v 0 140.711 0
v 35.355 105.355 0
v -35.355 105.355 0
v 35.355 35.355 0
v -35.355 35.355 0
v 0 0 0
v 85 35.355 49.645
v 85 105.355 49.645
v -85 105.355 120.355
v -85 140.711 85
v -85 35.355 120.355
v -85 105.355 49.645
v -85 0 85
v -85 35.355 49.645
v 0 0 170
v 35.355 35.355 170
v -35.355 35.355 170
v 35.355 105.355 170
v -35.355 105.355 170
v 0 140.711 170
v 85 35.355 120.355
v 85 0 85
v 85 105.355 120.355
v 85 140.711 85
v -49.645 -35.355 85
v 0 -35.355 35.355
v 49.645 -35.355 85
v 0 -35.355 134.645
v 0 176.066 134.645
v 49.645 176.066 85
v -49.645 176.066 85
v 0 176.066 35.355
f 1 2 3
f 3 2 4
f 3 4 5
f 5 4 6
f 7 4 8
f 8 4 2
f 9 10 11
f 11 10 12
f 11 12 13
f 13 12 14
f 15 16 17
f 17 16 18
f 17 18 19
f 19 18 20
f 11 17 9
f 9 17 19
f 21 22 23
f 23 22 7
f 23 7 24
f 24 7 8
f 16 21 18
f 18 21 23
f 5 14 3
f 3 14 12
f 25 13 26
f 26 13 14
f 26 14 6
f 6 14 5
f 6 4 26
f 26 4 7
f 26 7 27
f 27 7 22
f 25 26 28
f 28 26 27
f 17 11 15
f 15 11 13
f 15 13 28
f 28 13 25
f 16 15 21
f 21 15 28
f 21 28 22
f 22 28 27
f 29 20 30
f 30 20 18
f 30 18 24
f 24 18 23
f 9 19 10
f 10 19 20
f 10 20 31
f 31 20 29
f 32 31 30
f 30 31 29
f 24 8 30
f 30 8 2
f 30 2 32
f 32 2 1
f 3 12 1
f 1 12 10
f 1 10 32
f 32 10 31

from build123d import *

# Parameters (mm, degrees)
BOSS_EXTRUDE1_DEPTH  = 170
SKETCH2_W            = 70.7106781
SKETCH2_H            = 70
BOSS_EXTRUDE2_DEPTH  = 85
SKETCH3_W            = 70.208152808
SKETCH3_H            = 70
BOSS_EXTRUDE3_DEPTH  = 170.208153
BOSS_EXTRUDE7_DEPTH  = 140.710678
SKETCH5_W            = 70.208152808
SKETCH5_H            = 70
BOSS_EXTRUDE8_DEPTH  = 170.208153
BOSS_EXTRUDE9_DEPTH  = 40
BOSS_EXTRUDE10_DEPTH = 40
BOSS_EXTRUDE11_DEPTH = 40
BOSS_EXTRUDE14_DEPTH = 40
BOSS_EXTRUDE15_DEPTH = 40
BOSS_EXTRUDE17_DEPTH = 40
BOSS_EXTRUDE20_DEPTH = 40
BOSS_EXTRUDE21_DEPTH = 40
BOSS_EXTRUDE22_DEPTH = 40
BOSS_EXTRUDE24_DEPTH = 40


with BuildPart() as part:
    # Sketch1 → Boss-Extrude1 (new body)
    with BuildSketch(Plane.XY):
        Polygon((0, 0), (-35.355339059, 35.355339059), (-35.355339059, 105.355339059), (0, 140.710678119), (35.355339059, 105.355339059), (35.355339059, 35.355339059), align=None)
    extrude(amount=BOSS_EXTRUDE1_DEPTH)



with BuildPart() as body_2:
    # Sketch2 → Boss-Extrude2 (new, symmetric)
    with BuildSketch(Plane(origin=(0, 0, 0), x_dir=(0, 0, -1), z_dir=(1, 0, 0))):
        with Locations((-85, 70.355339059)):
            Rectangle(SKETCH2_W, SKETCH2_H)
        Polygon((-85, 140.710678109), (-120.35533905, 105.355339059), (-49.64466095, 105.355339059), align=None)
        Polygon((-49.64466095, 35.355339059), (-120.35533905, 35.355339059), (-85, 9e-09), align=None)
    extrude(amount=BOSS_EXTRUDE2_DEPTH, both=True)


with BuildPart() as part_1:
    add(part.part)

    add(body_2.part)  # Boss-Extrude3 merges body 2
    # Sketch3 → Boss-Extrude3 (add)
    with BuildSketch(Plane(origin=(17.677669533, 0, -17.67766953), x_dir=(-0.7071067811201199, 0, -0.7071067812529752), z_dir=(0.7071067812529752, 0, -0.7071067811201199))):
        with Locations((-60.104076402, 70.355339059)):
            Rectangle(SKETCH3_W, SKETCH3_H)
    extrude(amount=-BOSS_EXTRUDE3_DEPTH)

    # Sketch4 → Boss-Extrude7 (add)
    with BuildSketch(Plane(origin=(0, 140.710678119, 0), x_dir=(1, 0, 0), z_dir=(0, 1, 0))):
        Polygon((0, -35.355339059), (-49.64466095, -85.000000019), (0, -134.644660959), (49.64466095, -85), align=None)
    extrude(amount=-BOSS_EXTRUDE7_DEPTH)

    # Sketch5 → Boss-Extrude8 (add)
    with BuildSketch(Plane(origin=(-17.677669533, 0, -17.67766953), x_dir=(-0.7071067811201204, 0, 0.7071067812529747), z_dir=(-0.7071067812529747, 0, -0.7071067811201204))):
        with Locations((60.104076402, 70.355339059)):
            Rectangle(SKETCH5_W, SKETCH5_H)
    extrude(amount=-BOSS_EXTRUDE8_DEPTH)

    # Sketch7 → Boss-Extrude9 (add)
    with BuildSketch(Plane(origin=(0, 0, 0), x_dir=(0.8164965809277276, -0.4082482904638617, -0.4082482904638614), z_dir=(0.5773502691896236, 0.577350269189627, 0.5773502691896267))):
        Polygon((-104.103314072, -10.104076407), (-104.103314072, -60.104076394), (-60.802043892, -85.104076383), (-9e-09, -49.999999976), (0, 0), (-43.301270189, 25), align=None)
    extrude(amount=BOSS_EXTRUDE9_DEPTH)

    # Sketch8 → Boss-Extrude10 (add)
    with BuildSketch(Plane(origin=(0, 0, 0), x_dir=(-0.8164965809277275, -0.4082482904638613, -0.4082482904638619), z_dir=(0.5773502691896238, -0.5773502691896264, -0.5773502691896273))):
        Polygon((0, 0), (-104.103314072, -60.104076394), (-104.103314072, -10.104076407), (-43.301270189, 25), align=None)
        Polygon((0, 0), (5e-09, -50), (-60.802043877, -85.104076407), (-104.103314072, -60.104076394), align=None)
    extrude(amount=-BOSS_EXTRUDE10_DEPTH)

    # Sketch9 → Boss-Extrude11 (add)
    with BuildSketch(Plane(origin=(-8e-09, -35.355339028, -1e-08), x_dir=(-1.0, 2.324833960682746e-10, 0), z_dir=(-2.324833960682746e-10, -1.0, -2.9511459186104094e-10))):
        Polygon((-49.644660948, -85.000000014), (-1e-09, -35.355339056), (49.644660943, -85.000000003), (-1.9e-08, -134.644660946), align=None)
    extrude(amount=-BOSS_EXTRUDE11_DEPTH)

    # Sketch11 → Boss-Extrude14 (add)
    with BuildSketch(Plane(origin=(-56.666666664, -56.666666664, 56.666666669), x_dir=(0.8164965809396947, -0.408248290433944, 0.4082482904698449), z_dir=(-0.5773502691726996, -0.577350269172703, 0.5773502692234747))):
        Polygon((-34.701104701, 110.104076387), (-34.701104696, 60.1040764), (69.40220938, 120.208152796), (26.100939191, 145.208152798), align=None)
        Polygon((69.402209374, 70.208152796), (8.600165476, 35.104076398), (-34.701104696, 60.1040764), (69.40220938, 120.208152796), align=None)
    extrude(amount=-BOSS_EXTRUDE14_DEPTH)

    # Sketch12 → Boss-Extrude15 (add)
    with BuildSketch(Plane(origin=(56.666666687, -56.666666659, 56.666666659), x_dir=(0.40824829049722544, -0.40824829029705206, -0.8164965809944503), z_dir=(0.5773502693783509, -0.5773502690952631, 0.5773502690952634))):
        Polygon((-78.00237487, 85.104076392), (-138.804418754, 50.000000005), (-138.804418765, 6e-09), (-95.503148581, -25.000000002), (-34.701104701, 10.104076381), (-34.701104696, 60.104076393), align=None)
    extrude(amount=-BOSS_EXTRUDE15_DEPTH)

    # Sketch14 → Boss-Extrude17 (add)
    with BuildSketch(Plane(origin=(103.57022604, 103.57022604, 103.57022604), x_dir=(-0.8164965809277273, 0.4082482904638616, 0.4082482904638622), z_dir=(-0.5773502691896242, -0.5773502691896262, -0.5773502691896271))):
        Polygon((22.743789099, 39.393398276), (126.847103171, -20.710678119), (83.545832973, -45.710678114), (22.743789091, -10.606601707), align=None)
        Polygon((126.847103156, 29.289321886), (66.045059265, 64.393398279), (22.743789099, 39.393398276), (126.847103171, -20.710678119), align=None)
    extrude(amount=BOSS_EXTRUDE17_DEPTH)

    # Sketch15 → Boss-Extrude20 (add)
    with BuildSketch(Plane(origin=(-103.570226036, 103.570226036, 103.570226036), x_dir=(0.8164965809277289, 0.4082482904638593, 0.4082482904638611), z_dir=(-0.5773502691896217, 0.5773502691896265, 0.5773502691896291))):
        Polygon((126.847103171, -20.710678119), (83.545832973, -45.710678114), (22.743789099, -10.606601711), (22.743789099, 39.393398276), align=None)
        Polygon((66.045059273, 64.393398274), (126.847103156, 29.289321886), (126.847103171, -20.710678119), (22.743789099, 39.393398276), align=None)
    extrude(amount=-BOSS_EXTRUDE20_DEPTH)

    # Sketch18 → Boss-Extrude21 (add)
    with BuildSketch(Plane(origin=(-6e-09, 176.066017148, -3.1e-08), x_dir=(1.0, 3.131573767451649e-11, 0), z_dir=(-3.131573767451649e-11, 1.0, -1.7761984508401238e-10))):
        Polygon((-3e-09, -134.64466096), (49.644660968, -85.000000023), (-49.644660947, -85.000000026), align=None)
        Polygon((-49.644660947, -85.000000026), (-3e-09, -35.355339093), (49.644660968, -85.000000023), align=None)
    extrude(amount=-BOSS_EXTRUDE21_DEPTH)

    # Sketch19 → Boss-Extrude22 (add)
    with BuildSketch(Plane(origin=(46.90355937, 46.90355937, -46.90355937), x_dir=(-0.8164965809277273, 0.4082482904638619, -0.4082482904638618), z_dir=(-0.5773502691896241, -0.577350269189627, 0.5773502691896263))):
        Polygon((14.143623603, -74.497474683), (-46.65842028, -109.601551091), (-46.65842028, -159.601551077), (-3.357150107, -184.601551069), (57.444893789, -149.497474668), (57.444893792, -99.497474683), align=None)
    extrude(amount=BOSS_EXTRUDE22_DEPTH)

    # Sketch21 → Boss-Extrude24 (add)
    with BuildSketch(Plane(origin=(-46.903559392, 46.903559378, -46.903559356), x_dir=(-0.4082482903558565, 0.40824829023639164, 0.816496581095465), z_dir=(-0.5773502693927096, 0.5773502692237606, -0.5773502689524072))):
        Polygon((161.548207823, 89.393398286), (100.746163943, 124.497474679), (57.44489378, 99.497474694), (57.444893784, 49.497474694), (118.246937674, 14.393398298), (161.54820785, 39.393398295), align=None)
    extrude(amount=-BOSS_EXTRUDE24_DEPTH)


solid = part_1.part
